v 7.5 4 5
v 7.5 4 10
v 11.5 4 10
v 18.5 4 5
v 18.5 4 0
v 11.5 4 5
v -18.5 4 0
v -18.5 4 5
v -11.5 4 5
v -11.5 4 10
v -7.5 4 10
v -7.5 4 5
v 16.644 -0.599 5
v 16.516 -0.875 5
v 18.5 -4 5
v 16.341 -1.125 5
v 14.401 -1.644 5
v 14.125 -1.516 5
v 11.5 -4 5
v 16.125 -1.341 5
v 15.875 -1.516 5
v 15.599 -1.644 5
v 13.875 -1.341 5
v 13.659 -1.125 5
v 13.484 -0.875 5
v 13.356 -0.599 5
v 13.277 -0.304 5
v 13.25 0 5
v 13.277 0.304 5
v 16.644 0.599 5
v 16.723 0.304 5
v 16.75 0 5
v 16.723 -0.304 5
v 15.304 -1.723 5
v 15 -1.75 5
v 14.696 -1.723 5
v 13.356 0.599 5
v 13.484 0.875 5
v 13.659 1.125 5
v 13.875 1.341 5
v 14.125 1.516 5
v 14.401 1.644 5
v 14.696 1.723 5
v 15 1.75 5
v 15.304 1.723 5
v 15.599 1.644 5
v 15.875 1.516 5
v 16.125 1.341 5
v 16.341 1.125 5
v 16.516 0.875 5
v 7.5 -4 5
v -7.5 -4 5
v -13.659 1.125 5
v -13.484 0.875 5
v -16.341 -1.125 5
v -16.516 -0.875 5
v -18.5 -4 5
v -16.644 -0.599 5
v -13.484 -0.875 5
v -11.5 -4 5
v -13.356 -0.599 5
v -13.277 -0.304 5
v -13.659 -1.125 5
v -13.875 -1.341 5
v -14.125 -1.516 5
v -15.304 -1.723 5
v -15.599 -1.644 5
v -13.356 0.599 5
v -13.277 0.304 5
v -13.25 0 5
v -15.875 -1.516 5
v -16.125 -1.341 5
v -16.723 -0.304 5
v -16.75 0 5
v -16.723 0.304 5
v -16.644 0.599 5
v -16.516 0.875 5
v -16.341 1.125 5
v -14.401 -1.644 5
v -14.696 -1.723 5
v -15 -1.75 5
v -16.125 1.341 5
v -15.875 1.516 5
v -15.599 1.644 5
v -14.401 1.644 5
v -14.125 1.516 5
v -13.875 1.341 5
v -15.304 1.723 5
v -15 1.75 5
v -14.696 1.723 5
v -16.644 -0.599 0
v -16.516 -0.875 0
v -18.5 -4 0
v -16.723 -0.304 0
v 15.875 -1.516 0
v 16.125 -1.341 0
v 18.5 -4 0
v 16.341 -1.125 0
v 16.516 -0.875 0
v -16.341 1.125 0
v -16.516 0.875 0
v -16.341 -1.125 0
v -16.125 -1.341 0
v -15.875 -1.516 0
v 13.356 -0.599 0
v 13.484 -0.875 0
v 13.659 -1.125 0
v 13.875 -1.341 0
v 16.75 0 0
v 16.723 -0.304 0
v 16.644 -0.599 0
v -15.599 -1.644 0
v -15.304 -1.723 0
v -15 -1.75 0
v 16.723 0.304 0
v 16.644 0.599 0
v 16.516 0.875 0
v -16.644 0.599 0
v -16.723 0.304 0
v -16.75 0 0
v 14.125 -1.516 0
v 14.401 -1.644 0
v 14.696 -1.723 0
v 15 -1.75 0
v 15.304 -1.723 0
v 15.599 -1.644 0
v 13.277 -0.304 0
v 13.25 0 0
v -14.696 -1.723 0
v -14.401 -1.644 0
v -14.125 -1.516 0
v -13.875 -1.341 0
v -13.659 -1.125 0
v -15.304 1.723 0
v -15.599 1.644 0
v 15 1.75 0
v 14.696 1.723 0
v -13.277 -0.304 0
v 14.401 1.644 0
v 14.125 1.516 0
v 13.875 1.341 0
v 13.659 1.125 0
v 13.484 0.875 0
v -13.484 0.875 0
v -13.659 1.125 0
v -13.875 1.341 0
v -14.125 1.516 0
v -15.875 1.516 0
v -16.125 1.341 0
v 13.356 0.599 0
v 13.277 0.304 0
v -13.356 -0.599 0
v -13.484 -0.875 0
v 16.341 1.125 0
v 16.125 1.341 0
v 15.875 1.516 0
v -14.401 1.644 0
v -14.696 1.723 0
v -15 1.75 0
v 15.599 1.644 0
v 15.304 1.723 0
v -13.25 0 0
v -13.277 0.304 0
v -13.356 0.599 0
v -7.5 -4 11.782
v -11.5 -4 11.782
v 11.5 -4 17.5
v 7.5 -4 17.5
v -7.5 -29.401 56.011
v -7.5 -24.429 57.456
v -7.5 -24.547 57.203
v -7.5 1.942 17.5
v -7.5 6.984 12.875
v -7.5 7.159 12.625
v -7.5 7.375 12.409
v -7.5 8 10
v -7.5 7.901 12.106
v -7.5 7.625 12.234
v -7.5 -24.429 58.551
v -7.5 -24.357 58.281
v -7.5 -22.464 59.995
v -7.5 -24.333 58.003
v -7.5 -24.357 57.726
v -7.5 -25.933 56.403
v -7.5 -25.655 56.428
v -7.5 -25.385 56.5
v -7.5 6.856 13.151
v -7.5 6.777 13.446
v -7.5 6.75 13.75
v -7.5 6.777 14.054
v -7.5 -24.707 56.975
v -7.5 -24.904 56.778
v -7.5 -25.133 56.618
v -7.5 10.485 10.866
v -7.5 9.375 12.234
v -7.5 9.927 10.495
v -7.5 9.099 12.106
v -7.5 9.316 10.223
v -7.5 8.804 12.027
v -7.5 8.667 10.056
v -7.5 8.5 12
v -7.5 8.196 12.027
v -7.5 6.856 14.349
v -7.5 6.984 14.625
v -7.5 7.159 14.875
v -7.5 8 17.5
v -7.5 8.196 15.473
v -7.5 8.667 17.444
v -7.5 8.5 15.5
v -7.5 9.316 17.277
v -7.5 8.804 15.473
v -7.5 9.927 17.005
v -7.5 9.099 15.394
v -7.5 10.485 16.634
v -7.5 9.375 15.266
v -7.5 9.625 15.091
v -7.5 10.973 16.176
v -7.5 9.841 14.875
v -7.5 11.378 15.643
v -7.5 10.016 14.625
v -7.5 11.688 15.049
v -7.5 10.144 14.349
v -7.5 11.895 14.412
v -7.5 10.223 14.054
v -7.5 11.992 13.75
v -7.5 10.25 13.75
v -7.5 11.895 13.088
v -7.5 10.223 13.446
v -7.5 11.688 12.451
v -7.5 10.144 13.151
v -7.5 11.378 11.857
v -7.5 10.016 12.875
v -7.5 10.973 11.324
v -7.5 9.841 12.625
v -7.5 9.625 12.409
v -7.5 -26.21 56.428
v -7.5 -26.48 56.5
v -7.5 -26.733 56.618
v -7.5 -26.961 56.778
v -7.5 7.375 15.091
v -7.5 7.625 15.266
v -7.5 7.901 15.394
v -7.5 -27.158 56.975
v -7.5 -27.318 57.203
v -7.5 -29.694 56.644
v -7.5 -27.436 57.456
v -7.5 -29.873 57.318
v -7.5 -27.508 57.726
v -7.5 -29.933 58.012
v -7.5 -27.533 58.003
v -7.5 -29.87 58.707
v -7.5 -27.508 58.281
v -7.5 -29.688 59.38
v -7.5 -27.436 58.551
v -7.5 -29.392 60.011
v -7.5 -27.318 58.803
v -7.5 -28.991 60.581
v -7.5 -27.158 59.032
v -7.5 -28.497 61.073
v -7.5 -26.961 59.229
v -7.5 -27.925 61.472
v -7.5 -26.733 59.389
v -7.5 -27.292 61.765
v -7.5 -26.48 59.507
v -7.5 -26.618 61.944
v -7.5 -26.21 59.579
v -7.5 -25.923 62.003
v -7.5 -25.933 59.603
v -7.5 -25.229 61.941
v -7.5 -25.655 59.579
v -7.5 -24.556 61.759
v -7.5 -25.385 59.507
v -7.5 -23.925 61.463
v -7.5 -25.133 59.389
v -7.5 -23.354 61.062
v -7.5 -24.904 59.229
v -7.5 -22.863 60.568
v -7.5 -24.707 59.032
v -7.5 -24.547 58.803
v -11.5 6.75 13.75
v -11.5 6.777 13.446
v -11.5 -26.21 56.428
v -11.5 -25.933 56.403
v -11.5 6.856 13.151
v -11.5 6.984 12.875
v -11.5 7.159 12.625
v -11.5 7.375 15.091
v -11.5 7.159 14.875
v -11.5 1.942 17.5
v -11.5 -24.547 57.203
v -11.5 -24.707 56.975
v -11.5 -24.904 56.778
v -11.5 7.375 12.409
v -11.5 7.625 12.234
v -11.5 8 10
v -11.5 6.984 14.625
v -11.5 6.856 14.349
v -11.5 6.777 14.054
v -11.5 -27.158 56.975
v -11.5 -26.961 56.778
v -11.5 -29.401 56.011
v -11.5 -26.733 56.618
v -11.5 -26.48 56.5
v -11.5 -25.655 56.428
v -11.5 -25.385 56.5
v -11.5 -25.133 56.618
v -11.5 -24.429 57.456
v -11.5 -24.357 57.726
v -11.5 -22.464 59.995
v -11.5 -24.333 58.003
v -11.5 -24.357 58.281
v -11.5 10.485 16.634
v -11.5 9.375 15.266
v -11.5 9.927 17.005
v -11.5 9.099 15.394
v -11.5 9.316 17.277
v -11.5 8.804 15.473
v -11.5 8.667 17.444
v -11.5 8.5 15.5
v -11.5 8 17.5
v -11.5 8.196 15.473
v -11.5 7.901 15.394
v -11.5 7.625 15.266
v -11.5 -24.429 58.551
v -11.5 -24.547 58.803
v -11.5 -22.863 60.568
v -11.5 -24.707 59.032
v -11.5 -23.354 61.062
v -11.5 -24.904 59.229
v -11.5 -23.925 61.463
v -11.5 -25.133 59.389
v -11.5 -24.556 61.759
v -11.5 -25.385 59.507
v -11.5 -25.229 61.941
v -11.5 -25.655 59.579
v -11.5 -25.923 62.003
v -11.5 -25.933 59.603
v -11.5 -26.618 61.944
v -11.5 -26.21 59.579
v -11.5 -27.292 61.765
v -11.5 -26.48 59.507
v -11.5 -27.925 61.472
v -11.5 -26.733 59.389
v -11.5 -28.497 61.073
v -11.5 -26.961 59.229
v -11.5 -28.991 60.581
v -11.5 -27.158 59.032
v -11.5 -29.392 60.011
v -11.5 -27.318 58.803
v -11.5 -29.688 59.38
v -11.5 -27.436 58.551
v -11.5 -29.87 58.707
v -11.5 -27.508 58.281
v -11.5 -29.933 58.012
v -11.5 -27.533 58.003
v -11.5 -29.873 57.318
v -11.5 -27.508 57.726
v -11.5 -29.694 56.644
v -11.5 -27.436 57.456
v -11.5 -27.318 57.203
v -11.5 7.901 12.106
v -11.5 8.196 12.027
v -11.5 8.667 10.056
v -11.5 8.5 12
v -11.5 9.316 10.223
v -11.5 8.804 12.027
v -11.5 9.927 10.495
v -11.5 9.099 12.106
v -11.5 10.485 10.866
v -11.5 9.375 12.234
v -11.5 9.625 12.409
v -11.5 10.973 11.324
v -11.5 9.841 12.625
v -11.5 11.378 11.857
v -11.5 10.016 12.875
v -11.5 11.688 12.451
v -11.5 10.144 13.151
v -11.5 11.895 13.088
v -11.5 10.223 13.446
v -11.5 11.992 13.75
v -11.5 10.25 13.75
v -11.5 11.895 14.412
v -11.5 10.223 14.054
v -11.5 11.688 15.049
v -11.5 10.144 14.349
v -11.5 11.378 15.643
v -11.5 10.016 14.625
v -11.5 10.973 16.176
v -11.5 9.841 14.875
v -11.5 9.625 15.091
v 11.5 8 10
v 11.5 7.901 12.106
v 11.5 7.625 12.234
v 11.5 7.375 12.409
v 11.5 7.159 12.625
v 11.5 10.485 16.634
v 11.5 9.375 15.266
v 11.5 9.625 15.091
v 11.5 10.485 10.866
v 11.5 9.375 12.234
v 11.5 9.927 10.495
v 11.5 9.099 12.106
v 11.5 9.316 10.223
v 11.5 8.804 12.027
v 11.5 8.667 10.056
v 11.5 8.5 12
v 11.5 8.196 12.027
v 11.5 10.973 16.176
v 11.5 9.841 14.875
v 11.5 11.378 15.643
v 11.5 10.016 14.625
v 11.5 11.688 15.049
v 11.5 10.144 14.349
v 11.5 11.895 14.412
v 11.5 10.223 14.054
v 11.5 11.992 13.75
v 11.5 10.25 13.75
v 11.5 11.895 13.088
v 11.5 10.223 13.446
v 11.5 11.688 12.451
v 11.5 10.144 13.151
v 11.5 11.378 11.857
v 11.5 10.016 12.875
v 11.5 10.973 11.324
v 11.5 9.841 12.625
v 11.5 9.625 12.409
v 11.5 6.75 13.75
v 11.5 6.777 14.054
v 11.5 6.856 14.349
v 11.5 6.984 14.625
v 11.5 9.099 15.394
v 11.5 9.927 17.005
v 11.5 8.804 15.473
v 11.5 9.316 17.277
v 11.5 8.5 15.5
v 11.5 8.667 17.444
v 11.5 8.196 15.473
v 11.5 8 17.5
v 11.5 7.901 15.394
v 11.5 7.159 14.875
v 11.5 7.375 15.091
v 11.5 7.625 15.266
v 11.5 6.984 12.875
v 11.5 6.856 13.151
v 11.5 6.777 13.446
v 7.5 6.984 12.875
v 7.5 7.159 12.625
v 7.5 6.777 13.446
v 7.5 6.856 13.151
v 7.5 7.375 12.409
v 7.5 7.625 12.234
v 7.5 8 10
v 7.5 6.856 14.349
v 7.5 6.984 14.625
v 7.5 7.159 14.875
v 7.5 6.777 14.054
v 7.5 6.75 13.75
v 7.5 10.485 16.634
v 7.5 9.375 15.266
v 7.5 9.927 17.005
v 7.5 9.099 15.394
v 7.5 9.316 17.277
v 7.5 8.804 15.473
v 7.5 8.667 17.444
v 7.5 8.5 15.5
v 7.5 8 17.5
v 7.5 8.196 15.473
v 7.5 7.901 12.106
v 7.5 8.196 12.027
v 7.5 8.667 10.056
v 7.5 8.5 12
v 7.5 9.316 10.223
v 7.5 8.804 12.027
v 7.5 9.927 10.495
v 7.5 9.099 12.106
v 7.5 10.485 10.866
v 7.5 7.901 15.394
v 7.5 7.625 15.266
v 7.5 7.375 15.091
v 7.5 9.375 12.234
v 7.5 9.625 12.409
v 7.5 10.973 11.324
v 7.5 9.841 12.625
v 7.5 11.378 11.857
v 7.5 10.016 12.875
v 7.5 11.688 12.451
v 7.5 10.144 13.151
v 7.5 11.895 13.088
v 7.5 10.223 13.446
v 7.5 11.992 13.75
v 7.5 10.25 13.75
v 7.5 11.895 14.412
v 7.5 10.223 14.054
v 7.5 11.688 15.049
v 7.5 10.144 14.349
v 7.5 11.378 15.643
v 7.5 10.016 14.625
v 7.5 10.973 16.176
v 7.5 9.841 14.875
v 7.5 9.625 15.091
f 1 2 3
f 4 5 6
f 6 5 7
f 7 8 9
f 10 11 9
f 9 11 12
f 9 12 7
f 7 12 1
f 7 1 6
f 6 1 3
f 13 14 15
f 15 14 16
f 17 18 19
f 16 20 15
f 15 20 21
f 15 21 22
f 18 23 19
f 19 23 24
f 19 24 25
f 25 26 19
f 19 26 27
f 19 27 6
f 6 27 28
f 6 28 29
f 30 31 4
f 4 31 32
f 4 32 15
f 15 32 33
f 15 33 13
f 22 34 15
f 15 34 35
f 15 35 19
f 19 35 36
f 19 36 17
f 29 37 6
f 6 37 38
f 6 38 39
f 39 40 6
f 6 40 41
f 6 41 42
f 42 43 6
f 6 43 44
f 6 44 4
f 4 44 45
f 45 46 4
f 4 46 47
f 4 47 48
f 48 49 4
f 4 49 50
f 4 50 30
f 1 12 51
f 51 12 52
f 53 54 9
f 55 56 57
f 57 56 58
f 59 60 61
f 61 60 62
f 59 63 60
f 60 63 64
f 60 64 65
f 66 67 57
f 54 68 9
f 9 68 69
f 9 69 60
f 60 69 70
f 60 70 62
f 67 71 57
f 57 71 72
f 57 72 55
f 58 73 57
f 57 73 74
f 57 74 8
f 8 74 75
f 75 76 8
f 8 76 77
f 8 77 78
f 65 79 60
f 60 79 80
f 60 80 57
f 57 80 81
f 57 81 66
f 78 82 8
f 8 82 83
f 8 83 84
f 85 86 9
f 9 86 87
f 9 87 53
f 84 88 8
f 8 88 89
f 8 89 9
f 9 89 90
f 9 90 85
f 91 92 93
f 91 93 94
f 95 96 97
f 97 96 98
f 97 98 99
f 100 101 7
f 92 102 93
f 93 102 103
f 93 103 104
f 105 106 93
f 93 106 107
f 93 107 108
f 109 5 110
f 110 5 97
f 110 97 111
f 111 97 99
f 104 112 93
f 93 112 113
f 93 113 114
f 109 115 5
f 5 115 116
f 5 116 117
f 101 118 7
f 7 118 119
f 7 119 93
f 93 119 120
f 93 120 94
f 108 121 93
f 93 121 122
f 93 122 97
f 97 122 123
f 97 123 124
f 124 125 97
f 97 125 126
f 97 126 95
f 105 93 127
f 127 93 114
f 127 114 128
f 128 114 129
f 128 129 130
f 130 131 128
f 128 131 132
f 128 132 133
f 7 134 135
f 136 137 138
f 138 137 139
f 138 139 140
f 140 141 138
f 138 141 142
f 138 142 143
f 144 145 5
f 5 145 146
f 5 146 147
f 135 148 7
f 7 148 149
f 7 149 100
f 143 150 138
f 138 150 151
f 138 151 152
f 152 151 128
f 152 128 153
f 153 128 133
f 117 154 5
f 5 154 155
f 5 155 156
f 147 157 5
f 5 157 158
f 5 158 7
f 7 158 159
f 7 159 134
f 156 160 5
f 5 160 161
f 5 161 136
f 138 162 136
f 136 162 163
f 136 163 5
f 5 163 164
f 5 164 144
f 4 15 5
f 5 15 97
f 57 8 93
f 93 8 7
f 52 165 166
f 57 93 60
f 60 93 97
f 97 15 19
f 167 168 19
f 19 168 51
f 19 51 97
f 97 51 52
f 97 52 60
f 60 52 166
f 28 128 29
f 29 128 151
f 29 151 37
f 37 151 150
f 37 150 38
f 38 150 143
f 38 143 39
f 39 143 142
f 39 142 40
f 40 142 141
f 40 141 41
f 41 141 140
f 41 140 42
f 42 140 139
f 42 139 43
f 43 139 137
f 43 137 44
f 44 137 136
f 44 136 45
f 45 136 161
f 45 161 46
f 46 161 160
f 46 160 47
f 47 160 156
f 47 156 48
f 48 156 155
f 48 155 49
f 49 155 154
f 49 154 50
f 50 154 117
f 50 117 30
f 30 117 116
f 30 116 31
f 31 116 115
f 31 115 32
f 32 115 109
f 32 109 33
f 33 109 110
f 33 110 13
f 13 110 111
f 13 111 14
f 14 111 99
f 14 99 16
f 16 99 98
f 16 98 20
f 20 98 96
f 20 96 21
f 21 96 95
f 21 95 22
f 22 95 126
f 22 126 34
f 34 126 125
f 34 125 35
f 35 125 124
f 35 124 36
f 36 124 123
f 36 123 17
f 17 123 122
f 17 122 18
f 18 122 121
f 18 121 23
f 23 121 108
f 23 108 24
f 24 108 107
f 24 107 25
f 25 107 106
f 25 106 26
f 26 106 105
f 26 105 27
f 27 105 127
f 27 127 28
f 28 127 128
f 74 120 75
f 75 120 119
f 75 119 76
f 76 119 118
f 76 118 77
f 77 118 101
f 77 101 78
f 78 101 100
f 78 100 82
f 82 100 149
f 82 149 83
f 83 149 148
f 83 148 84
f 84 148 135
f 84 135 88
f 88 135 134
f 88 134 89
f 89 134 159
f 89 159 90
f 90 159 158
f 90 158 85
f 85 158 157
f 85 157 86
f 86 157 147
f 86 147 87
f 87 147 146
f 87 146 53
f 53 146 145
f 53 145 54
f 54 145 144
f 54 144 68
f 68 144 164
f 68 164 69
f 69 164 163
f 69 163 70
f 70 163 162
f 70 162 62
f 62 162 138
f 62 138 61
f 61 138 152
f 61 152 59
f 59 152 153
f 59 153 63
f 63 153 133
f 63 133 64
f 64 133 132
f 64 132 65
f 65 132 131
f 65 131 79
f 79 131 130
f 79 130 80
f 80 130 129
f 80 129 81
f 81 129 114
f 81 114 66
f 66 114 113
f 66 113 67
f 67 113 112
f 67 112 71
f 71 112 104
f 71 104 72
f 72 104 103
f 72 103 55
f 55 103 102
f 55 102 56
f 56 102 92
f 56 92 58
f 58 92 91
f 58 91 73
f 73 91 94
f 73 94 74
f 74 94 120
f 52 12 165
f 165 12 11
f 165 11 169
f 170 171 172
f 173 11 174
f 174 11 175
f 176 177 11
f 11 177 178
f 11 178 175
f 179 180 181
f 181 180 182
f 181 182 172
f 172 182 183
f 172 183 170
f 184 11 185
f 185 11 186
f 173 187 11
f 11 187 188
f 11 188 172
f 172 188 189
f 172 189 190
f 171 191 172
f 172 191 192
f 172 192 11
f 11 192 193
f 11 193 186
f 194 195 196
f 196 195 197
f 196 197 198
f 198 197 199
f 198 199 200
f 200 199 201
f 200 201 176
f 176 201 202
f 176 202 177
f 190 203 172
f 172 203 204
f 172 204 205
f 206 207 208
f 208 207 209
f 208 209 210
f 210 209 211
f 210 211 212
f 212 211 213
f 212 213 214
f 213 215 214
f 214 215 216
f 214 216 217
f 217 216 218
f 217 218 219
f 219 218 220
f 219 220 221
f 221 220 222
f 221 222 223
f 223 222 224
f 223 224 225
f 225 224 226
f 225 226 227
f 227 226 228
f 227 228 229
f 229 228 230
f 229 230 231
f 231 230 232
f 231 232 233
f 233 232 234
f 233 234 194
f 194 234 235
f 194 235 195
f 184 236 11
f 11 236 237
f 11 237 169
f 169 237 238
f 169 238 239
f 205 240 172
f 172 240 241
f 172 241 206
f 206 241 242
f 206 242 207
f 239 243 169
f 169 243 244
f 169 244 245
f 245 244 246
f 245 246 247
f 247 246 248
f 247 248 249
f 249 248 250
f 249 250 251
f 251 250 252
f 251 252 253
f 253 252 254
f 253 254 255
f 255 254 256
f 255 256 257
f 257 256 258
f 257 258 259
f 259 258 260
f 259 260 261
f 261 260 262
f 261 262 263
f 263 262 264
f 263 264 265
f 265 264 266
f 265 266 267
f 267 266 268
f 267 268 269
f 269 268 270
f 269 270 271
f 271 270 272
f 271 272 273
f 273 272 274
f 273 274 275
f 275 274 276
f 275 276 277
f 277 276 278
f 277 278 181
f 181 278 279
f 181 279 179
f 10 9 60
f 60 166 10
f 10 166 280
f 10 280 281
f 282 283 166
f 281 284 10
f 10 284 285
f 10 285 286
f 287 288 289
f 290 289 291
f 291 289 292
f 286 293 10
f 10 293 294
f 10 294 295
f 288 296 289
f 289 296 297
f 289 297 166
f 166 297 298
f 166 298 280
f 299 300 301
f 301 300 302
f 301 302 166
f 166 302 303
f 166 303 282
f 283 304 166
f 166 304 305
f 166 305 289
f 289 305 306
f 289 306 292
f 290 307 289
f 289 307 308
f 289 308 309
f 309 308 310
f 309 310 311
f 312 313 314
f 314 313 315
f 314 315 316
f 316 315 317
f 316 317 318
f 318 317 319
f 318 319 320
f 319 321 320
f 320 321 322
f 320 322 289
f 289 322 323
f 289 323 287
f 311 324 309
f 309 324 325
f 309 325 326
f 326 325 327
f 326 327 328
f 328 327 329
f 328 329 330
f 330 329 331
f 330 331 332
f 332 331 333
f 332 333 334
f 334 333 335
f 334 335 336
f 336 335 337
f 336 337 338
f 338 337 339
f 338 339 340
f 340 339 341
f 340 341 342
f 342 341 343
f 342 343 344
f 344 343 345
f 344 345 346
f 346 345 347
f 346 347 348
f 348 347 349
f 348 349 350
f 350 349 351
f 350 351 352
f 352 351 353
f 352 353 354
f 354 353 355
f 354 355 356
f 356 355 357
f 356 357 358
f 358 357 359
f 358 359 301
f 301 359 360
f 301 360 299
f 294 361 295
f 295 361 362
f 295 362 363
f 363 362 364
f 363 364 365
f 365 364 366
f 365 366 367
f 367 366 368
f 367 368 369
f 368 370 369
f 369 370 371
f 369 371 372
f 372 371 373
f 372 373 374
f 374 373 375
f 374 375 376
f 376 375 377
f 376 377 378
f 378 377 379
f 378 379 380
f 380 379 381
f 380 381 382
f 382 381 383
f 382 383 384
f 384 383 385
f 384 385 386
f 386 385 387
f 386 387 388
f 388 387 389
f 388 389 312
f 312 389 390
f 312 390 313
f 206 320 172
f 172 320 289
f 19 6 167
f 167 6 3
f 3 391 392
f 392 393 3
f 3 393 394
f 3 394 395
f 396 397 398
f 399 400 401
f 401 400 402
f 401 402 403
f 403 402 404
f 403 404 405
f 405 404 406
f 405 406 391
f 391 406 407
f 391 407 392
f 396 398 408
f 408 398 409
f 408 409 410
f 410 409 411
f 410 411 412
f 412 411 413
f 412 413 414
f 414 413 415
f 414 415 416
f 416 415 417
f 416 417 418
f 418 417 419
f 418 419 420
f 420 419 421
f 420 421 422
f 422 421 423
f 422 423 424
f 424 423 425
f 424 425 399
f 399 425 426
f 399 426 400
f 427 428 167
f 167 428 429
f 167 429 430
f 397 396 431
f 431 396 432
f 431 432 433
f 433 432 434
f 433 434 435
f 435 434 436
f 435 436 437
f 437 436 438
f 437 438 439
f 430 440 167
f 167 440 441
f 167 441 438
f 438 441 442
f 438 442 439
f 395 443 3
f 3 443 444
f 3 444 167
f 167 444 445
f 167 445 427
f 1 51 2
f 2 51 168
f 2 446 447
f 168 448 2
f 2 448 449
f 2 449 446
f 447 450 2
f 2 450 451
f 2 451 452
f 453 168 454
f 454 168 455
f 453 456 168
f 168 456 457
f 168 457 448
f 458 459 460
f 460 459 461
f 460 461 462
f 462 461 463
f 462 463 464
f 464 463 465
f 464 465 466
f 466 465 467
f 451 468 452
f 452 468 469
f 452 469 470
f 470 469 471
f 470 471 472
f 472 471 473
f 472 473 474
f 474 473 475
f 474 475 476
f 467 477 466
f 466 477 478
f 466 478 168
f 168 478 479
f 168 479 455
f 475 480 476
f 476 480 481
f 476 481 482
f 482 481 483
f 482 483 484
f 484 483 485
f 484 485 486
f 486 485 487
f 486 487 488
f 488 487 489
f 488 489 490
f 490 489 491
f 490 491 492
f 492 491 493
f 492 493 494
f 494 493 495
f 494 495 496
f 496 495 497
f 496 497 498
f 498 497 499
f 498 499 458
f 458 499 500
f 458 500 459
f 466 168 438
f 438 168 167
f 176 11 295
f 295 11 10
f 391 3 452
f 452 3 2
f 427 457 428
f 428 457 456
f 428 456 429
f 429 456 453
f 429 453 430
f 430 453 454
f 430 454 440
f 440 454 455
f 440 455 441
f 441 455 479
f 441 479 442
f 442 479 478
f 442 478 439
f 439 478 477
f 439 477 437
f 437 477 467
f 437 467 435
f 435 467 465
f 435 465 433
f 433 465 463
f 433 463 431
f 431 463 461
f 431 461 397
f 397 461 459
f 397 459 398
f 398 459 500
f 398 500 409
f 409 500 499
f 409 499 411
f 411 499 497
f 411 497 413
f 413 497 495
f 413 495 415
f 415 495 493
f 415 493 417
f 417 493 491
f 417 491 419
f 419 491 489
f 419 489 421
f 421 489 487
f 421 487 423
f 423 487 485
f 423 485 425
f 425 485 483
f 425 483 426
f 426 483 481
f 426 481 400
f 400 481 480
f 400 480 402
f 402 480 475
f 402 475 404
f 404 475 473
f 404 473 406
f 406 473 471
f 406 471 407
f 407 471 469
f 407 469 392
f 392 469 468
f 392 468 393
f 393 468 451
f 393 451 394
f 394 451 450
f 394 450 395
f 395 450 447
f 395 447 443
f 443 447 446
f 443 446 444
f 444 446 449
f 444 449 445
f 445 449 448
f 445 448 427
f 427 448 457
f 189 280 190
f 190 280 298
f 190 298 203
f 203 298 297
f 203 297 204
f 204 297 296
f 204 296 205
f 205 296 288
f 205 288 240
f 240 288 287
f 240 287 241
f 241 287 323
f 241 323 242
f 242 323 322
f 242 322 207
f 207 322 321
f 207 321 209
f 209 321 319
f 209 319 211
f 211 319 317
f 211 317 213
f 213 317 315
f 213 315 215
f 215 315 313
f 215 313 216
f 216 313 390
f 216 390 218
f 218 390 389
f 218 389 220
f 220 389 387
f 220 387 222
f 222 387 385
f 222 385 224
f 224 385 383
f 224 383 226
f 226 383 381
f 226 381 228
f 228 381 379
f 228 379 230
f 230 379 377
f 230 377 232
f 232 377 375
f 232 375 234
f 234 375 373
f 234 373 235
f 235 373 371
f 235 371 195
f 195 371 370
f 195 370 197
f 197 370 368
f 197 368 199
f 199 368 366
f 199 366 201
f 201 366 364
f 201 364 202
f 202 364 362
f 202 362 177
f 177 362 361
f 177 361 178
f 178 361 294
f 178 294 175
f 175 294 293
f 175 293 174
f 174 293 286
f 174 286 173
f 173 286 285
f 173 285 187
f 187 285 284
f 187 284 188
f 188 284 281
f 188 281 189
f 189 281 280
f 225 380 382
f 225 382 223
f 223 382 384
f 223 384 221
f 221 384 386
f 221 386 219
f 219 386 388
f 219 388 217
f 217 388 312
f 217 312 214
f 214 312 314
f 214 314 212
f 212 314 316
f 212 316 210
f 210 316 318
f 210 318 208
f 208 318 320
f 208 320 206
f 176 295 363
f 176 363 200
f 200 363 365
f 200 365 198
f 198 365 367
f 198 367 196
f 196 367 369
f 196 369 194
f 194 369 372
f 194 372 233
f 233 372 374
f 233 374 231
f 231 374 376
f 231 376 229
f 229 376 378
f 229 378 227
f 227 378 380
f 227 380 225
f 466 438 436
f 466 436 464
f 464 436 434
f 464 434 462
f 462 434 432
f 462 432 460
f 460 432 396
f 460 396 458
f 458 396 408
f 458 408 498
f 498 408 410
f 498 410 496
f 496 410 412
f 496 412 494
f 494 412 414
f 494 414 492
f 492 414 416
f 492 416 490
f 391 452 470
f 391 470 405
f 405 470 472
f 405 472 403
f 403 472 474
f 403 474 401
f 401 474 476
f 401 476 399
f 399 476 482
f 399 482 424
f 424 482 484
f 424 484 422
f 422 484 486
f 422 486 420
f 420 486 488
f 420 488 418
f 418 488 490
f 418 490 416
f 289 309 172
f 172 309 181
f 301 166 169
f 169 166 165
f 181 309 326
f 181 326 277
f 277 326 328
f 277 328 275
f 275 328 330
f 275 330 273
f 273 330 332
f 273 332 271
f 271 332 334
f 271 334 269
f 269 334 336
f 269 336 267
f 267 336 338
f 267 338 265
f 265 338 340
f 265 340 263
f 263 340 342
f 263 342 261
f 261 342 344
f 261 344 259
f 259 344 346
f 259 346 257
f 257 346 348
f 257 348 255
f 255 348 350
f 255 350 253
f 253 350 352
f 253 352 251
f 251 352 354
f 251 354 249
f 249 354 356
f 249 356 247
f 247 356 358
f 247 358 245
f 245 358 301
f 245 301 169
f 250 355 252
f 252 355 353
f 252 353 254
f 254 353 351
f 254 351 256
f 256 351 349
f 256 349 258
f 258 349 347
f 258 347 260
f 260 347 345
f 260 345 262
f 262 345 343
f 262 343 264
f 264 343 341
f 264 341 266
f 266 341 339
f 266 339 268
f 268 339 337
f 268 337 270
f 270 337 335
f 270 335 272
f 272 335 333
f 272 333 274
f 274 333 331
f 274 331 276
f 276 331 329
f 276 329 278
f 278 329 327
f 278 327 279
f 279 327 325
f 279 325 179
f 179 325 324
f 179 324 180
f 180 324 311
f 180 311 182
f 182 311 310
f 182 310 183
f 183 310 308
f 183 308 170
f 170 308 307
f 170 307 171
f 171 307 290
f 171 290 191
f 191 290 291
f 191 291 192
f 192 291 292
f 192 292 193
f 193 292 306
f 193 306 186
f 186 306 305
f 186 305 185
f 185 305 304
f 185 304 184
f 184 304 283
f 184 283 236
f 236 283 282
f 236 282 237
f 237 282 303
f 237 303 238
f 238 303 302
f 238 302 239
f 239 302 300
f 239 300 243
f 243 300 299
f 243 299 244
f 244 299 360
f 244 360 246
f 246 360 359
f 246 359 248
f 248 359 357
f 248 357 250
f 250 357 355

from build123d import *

# Parameters (mm, degrees)
SKETCH1_W           = 37
SKETCH1_H           = 8
SKETCH1_R           = 1.75
BOSS_EXTRUDE1_DEPTH = 5
SKETCH2_W           = 4
SKETCH2_H           = 8
BOSS_EXTRUDE2_DEPTH = 12.5
SKETCH4_W           = 4
SKETCH4_H           = 7.5
BOSS_EXTRUDE3_DEPTH = 8
SKETCH3_R           = 1.75
CUT_EXTRUDE1_DEPTH  = 37.745748053
FILLET1_R           = 4
SKETCH6_R           = 1.6
BOSS_EXTRUDE5_DEPTH = 4


with BuildPart() as part:
    # Sketch1 → Boss-Extrude1 (new body)
    with BuildSketch(Plane.XY):
        Rectangle(SKETCH1_W, SKETCH1_H)
        with Locations((-15, 0)):
            Circle(SKETCH1_R, mode=Mode.SUBTRACT)
        with Locations(Location((15, 0, 0), (0, 0, 180))):
            Circle(SKETCH1_R, mode=Mode.SUBTRACT)
    extrude(amount=BOSS_EXTRUDE1_DEPTH)

    # Sketch2 → Boss-Extrude2 (add)
    with BuildSketch(Plane.XY.offset(5)):
        with Locations((-9.5, 0)):
            Rectangle(SKETCH2_W, SKETCH2_H)
        with Locations((9.5, 0)):
            Rectangle(SKETCH2_W, SKETCH2_H)
    extrude(amount=BOSS_EXTRUDE2_DEPTH)

    # Sketch4 → Boss-Extrude3 (add)
    with BuildSketch(Plane(origin=(0, 4, 0), x_dir=(1, 0, 0), z_dir=(0, 1, 0))):
        with Locations((-9.5, -13.75)):
            Rectangle(SKETCH4_W, SKETCH4_H)
        with Locations((9.5, -13.75)):
            Rectangle(SKETCH4_W, SKETCH4_H)
    extrude(amount=BOSS_EXTRUDE3_DEPTH)

    # Sketch3 → Cut-Extrude1 (cut, through all)
    with BuildSketch(Plane.ZY.offset(11.5)):
        with Locations(Location((13.75, 8.5, 0), (0, 0, 270))):
            Circle(SKETCH3_R)
    extrude(amount=-CUT_EXTRUDE1_DEPTH, mode=Mode.SUBTRACT)

    # Fillet1
    # the kernel refuses this fillet: 4 mm, written as the material it takes off along each edge
    with BuildSketch(Plane(origin=(2.5, 12, 10), x_dir=(0, -1, 0), z_dir=(-1, 0, 0))) as fillet1_piece_1:
        with BuildLine():
            CenterArc((FILLET1_R, FILLET1_R), FILLET1_R, 180, 90)
            Line((0, FILLET1_R), (0, 0))
            Line((0, 0), (FILLET1_R, 0))
        make_face()
    extrude(amount=24, mode=Mode.SUBTRACT)
    with BuildSketch(Plane(origin=(-2.5, 12, 10), x_dir=(0, -1, 0), z_dir=(1, 0, 0)), Plane(origin=(21.5, 12, 17.5), x_dir=(0, -1, 0), z_dir=(-1, 0, 0)), Plane(origin=(-21.5, 12, 17.5), x_dir=(0, 0, -1), z_dir=(1, 0, 0))) as fillet1_piece_2:
        with BuildLine():
            CenterArc((FILLET1_R, -FILLET1_R), FILLET1_R, 90, 90)
            Line((0, -FILLET1_R), (0, 0))
            Line((0, 0), (FILLET1_R, 0))
        make_face()
    extrude(amount=24, mode=Mode.SUBTRACT)

    # Sketch6 → Boss-Extrude5 (add)
    with BuildSketch(Plane.ZY.offset(11.5)):
        with BuildLine():
            Line((56.011251263, -29.401227517), (11.782401197, -4))
            Line((11.782401197, -4), (17.5, 1.941786969))
            Line((17.5, 1.941786969), (59.995440826, -22.463920148))
            ThreePointArc((59.995440826, -22.463920148), (61.471999729, -27.924668614), (56.011251263, -29.401227517))
        make_face()
        with Locations(Location((58.003346044, -25.932573832, 0), (0, 0, 270))):
            Circle(SKETCH6_R, mode=Mode.SUBTRACT)
    extrude(amount=-BOSS_EXTRUDE5_DEPTH)


solid = part.part
